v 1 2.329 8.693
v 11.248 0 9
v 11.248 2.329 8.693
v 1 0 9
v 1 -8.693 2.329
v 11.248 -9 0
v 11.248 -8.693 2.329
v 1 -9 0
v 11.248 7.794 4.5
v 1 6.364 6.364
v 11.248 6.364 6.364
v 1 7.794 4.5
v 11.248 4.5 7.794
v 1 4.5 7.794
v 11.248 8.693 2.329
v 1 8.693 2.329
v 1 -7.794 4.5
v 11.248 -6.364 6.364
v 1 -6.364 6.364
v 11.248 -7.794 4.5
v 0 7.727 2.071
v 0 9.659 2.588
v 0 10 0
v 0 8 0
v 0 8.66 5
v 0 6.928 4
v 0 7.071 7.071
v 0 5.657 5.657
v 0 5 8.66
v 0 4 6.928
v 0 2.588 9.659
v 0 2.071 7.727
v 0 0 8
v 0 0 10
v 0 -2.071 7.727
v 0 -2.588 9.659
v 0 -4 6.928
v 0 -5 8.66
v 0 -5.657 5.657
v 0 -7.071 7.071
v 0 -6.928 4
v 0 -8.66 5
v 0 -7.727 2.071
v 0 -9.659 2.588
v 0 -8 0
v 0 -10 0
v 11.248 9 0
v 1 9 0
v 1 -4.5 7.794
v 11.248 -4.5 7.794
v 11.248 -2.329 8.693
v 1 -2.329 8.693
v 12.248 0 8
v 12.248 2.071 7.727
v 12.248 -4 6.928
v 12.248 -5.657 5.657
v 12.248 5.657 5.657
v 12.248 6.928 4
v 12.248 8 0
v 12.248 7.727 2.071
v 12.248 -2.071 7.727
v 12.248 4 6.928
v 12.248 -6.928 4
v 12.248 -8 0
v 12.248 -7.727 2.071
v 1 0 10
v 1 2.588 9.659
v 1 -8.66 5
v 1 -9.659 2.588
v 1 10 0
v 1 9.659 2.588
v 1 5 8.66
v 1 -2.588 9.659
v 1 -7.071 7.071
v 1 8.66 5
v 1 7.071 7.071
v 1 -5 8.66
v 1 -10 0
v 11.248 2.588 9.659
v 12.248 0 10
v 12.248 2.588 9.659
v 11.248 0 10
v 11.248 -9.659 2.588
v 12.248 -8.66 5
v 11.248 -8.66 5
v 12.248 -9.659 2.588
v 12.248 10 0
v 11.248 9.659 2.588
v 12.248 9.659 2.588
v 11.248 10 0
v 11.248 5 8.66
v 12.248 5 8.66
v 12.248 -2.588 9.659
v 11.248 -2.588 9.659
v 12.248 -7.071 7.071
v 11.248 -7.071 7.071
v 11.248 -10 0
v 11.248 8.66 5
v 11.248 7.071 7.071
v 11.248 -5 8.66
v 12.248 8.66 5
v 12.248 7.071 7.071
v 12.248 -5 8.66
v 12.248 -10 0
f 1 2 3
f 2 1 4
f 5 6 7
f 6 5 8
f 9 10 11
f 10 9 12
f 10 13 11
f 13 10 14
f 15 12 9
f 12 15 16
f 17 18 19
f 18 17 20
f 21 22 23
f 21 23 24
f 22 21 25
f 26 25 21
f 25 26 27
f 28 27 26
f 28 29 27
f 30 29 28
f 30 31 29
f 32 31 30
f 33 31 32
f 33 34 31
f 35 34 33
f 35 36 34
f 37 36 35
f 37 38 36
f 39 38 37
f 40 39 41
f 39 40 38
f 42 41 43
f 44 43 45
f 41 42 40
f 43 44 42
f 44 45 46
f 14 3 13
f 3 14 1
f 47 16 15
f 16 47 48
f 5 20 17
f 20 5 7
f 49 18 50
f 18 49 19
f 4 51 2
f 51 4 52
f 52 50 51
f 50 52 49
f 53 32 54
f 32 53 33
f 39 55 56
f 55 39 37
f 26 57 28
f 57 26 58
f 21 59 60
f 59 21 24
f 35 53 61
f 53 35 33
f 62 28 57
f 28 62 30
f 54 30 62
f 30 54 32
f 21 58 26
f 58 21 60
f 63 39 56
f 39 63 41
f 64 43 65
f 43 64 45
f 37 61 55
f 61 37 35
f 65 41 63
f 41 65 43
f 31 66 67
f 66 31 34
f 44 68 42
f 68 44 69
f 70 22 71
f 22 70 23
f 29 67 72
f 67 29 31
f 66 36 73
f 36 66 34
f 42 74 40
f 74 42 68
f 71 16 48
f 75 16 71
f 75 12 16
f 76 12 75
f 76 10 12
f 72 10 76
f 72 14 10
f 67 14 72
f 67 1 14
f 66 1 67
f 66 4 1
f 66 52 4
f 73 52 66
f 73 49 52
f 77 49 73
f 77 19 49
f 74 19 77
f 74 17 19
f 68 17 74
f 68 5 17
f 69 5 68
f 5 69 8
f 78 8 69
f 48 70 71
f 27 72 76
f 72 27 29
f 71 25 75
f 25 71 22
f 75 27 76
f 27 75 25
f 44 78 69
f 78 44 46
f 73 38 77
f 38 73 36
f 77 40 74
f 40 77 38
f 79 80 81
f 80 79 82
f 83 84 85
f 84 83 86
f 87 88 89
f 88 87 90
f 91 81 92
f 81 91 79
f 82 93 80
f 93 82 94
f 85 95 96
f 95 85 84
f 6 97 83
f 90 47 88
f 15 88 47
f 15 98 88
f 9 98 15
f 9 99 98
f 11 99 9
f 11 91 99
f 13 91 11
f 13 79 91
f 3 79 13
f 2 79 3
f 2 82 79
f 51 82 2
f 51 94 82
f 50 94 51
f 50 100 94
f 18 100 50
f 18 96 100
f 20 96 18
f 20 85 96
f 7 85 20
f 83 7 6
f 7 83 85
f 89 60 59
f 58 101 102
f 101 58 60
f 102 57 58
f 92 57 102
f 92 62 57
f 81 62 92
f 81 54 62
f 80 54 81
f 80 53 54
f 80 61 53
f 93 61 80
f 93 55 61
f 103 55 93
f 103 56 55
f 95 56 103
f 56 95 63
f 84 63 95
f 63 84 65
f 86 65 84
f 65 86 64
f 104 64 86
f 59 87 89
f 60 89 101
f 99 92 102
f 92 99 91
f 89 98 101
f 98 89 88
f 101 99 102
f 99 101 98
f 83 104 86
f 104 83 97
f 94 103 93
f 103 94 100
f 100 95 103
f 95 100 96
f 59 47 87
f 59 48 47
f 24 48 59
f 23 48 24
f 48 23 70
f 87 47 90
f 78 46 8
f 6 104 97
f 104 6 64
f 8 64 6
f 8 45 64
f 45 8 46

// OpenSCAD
// file: ../build_environments.scad
// build_environments.scad: modules to build level sections
//

module pool(diameter=10.0, wall_height=2.0, step_width=3.0, connections=[])
{
    difference() {
        union() {
        difference() {
            cylinder(h=0.5,r1=diameter+step_width,r2=diameter+step_width,$fn=48);
            translate([0,0,-0.1])
                cylinder(h=0.7,r1=diameter,r2=diameter,$fn=48);
        }
        difference() {
            cylinder(h=wall_height,r1=diameter+step_width+1.0,r2=diameter+step_width+1.0,$fn=48);
            translate([0,0,-0.1])
                cylinder(h=wall_height+0.2,r1=diameter+step_width,r2=diameter+step_width,$fn=48);
        }
        }
    
        for (c = connections)
        {
            rotate([0,90,0]) {
                angle = atan2(c[1],c[0]);
                rotate([-angle,0,0]) {
                    cylinder(h=diameter+5.0,r1=c[2],r2=c[2],$fn=48);
                }
            }
        }
    }
}

module straight(length=10.0, width=2.0, dy1=0.0, dy2=0.0, dz=0.0)
{
    dims = [0, 0, 0, 0, 0, (dz/length)];
    matrix = [
        [ 1, dims[0], dims[1], 0 ],
        [ dims[2], 1, dims[4], 0 ],
        [ dims[5], dims[3], 1, 0 ],
        [ 0, 0, 0, 1 ]
    ];
    multmatrix(matrix)
    difference() {
        translate([dy1,0,0])
        union() {
            rotate([0,90,0]) {
                difference() {
                    cylinder(h=(length-dy1-dy2),r1=width+1.0,r2=width+1.0,$fn=24);
                    translate([0,0,-0.1])
                        cylinder(h=(length-dy1-dy2+0.2),r1=width,r2=width,$fn=24);
                }
                difference() {
                    cylinder(h=1.0,r1=width+2.0,r2=width+2.0,$fn=24);
                    translate([0,0,-0.1])
                        cylinder(h=1.2,r1=width,r2=width,$fn=24);
                }
                translate([0,0,(length-dy1-dy2)-1.0]) {
                    difference() {
                        cylinder(h=1.0,r1=width+2.0,r2=width+2.0,$fn=24);
                        translate([0,0,-0.1])
                            cylinder(h=1.2,r1=width,r2=width,$fn=24);
                    }
                }
            }
        }
        translate([0,0,-(2*width+4.0)/2])
            cube([3*length,3*length,2*width+4.0],center=true);
    }
}

module curve(p0=[0,0], center=[0,0], dir=1, angle=0.0, width=2.0)
{
    radius = sqrt((p0[0]-center[0])*(p0[0]-center[0]) + (p0[1]-center[1])*(p0[1]-center[1]));
    if (dir == 0) {
        difference() {
            rotate([0,0,-90])
            difference() {
                rotate_extrude(angle = angle, convexity = 10, $fn=32)
                    translate([radius, 0, 0])
                        circle(r = width+1.0,$fn=24);
                rotate([0,0,-1.0])
                    rotate_extrude(angle = angle+2.0, convexity = 10, $fn=32)
                        translate([radius, 0, 0])
                            circle(r = width,$fn=24);
            }
            translate([0,0,-(2*width+4.0)/2])
                cube([5*radius,5*radius,2*width+4.0],center=true);
        }
    }
    else {
        difference() {
            rotate([0,0,90])
            difference() {
                rotate_extrude(angle = -angle, convexity = 10, $fn=32)
                    translate([radius, 0, 0])
                        circle(r = width+1.0,$fn=24);
                rotate([0,0,1.0])
                    rotate_extrude(angle = -angle-2.0, convexity = 10, $fn=32)
                        translate([radius, 0, 0])
                            circle(r = width,$fn=24);
            }
            translate([0,0,-(2*width+4.0)/2])
                cube([5*radius,5*radius,2*width+4.0],center=true);
        }
    }

}

// test pool
//pool(diameter=12.0000, wall_height=3.0000, step_width=3.0000, connections=[[0.0000,-26.0000,2.0000], [23.6074,0.0000,2.0000]]);

// test straight, slope
//straight(length=26.0000, width=2.0000, dy1=11.8322, dy2=6.7082, dz=0.0000);
//straight(length=29.1549, width=12.0000, dy1=0.0000, dy2=0.0000, dz=-15.0000);

// test curve
//curve(p0=[23.6074, 0.0000], center=[23.6074, 5.0000], dir=0, angle=60.1011, width=2.0000);
//curve(p0=[33.6426, 12.4219], center=[37.9771, 9.9295], dir=1, angle=120.4627, width=2.0000);
// main file
use <../build_environments.scad>;
straight(length=12.2485, width=8.0000, dy1=0.0000, dy2=0.0000, dz=0.0000);
